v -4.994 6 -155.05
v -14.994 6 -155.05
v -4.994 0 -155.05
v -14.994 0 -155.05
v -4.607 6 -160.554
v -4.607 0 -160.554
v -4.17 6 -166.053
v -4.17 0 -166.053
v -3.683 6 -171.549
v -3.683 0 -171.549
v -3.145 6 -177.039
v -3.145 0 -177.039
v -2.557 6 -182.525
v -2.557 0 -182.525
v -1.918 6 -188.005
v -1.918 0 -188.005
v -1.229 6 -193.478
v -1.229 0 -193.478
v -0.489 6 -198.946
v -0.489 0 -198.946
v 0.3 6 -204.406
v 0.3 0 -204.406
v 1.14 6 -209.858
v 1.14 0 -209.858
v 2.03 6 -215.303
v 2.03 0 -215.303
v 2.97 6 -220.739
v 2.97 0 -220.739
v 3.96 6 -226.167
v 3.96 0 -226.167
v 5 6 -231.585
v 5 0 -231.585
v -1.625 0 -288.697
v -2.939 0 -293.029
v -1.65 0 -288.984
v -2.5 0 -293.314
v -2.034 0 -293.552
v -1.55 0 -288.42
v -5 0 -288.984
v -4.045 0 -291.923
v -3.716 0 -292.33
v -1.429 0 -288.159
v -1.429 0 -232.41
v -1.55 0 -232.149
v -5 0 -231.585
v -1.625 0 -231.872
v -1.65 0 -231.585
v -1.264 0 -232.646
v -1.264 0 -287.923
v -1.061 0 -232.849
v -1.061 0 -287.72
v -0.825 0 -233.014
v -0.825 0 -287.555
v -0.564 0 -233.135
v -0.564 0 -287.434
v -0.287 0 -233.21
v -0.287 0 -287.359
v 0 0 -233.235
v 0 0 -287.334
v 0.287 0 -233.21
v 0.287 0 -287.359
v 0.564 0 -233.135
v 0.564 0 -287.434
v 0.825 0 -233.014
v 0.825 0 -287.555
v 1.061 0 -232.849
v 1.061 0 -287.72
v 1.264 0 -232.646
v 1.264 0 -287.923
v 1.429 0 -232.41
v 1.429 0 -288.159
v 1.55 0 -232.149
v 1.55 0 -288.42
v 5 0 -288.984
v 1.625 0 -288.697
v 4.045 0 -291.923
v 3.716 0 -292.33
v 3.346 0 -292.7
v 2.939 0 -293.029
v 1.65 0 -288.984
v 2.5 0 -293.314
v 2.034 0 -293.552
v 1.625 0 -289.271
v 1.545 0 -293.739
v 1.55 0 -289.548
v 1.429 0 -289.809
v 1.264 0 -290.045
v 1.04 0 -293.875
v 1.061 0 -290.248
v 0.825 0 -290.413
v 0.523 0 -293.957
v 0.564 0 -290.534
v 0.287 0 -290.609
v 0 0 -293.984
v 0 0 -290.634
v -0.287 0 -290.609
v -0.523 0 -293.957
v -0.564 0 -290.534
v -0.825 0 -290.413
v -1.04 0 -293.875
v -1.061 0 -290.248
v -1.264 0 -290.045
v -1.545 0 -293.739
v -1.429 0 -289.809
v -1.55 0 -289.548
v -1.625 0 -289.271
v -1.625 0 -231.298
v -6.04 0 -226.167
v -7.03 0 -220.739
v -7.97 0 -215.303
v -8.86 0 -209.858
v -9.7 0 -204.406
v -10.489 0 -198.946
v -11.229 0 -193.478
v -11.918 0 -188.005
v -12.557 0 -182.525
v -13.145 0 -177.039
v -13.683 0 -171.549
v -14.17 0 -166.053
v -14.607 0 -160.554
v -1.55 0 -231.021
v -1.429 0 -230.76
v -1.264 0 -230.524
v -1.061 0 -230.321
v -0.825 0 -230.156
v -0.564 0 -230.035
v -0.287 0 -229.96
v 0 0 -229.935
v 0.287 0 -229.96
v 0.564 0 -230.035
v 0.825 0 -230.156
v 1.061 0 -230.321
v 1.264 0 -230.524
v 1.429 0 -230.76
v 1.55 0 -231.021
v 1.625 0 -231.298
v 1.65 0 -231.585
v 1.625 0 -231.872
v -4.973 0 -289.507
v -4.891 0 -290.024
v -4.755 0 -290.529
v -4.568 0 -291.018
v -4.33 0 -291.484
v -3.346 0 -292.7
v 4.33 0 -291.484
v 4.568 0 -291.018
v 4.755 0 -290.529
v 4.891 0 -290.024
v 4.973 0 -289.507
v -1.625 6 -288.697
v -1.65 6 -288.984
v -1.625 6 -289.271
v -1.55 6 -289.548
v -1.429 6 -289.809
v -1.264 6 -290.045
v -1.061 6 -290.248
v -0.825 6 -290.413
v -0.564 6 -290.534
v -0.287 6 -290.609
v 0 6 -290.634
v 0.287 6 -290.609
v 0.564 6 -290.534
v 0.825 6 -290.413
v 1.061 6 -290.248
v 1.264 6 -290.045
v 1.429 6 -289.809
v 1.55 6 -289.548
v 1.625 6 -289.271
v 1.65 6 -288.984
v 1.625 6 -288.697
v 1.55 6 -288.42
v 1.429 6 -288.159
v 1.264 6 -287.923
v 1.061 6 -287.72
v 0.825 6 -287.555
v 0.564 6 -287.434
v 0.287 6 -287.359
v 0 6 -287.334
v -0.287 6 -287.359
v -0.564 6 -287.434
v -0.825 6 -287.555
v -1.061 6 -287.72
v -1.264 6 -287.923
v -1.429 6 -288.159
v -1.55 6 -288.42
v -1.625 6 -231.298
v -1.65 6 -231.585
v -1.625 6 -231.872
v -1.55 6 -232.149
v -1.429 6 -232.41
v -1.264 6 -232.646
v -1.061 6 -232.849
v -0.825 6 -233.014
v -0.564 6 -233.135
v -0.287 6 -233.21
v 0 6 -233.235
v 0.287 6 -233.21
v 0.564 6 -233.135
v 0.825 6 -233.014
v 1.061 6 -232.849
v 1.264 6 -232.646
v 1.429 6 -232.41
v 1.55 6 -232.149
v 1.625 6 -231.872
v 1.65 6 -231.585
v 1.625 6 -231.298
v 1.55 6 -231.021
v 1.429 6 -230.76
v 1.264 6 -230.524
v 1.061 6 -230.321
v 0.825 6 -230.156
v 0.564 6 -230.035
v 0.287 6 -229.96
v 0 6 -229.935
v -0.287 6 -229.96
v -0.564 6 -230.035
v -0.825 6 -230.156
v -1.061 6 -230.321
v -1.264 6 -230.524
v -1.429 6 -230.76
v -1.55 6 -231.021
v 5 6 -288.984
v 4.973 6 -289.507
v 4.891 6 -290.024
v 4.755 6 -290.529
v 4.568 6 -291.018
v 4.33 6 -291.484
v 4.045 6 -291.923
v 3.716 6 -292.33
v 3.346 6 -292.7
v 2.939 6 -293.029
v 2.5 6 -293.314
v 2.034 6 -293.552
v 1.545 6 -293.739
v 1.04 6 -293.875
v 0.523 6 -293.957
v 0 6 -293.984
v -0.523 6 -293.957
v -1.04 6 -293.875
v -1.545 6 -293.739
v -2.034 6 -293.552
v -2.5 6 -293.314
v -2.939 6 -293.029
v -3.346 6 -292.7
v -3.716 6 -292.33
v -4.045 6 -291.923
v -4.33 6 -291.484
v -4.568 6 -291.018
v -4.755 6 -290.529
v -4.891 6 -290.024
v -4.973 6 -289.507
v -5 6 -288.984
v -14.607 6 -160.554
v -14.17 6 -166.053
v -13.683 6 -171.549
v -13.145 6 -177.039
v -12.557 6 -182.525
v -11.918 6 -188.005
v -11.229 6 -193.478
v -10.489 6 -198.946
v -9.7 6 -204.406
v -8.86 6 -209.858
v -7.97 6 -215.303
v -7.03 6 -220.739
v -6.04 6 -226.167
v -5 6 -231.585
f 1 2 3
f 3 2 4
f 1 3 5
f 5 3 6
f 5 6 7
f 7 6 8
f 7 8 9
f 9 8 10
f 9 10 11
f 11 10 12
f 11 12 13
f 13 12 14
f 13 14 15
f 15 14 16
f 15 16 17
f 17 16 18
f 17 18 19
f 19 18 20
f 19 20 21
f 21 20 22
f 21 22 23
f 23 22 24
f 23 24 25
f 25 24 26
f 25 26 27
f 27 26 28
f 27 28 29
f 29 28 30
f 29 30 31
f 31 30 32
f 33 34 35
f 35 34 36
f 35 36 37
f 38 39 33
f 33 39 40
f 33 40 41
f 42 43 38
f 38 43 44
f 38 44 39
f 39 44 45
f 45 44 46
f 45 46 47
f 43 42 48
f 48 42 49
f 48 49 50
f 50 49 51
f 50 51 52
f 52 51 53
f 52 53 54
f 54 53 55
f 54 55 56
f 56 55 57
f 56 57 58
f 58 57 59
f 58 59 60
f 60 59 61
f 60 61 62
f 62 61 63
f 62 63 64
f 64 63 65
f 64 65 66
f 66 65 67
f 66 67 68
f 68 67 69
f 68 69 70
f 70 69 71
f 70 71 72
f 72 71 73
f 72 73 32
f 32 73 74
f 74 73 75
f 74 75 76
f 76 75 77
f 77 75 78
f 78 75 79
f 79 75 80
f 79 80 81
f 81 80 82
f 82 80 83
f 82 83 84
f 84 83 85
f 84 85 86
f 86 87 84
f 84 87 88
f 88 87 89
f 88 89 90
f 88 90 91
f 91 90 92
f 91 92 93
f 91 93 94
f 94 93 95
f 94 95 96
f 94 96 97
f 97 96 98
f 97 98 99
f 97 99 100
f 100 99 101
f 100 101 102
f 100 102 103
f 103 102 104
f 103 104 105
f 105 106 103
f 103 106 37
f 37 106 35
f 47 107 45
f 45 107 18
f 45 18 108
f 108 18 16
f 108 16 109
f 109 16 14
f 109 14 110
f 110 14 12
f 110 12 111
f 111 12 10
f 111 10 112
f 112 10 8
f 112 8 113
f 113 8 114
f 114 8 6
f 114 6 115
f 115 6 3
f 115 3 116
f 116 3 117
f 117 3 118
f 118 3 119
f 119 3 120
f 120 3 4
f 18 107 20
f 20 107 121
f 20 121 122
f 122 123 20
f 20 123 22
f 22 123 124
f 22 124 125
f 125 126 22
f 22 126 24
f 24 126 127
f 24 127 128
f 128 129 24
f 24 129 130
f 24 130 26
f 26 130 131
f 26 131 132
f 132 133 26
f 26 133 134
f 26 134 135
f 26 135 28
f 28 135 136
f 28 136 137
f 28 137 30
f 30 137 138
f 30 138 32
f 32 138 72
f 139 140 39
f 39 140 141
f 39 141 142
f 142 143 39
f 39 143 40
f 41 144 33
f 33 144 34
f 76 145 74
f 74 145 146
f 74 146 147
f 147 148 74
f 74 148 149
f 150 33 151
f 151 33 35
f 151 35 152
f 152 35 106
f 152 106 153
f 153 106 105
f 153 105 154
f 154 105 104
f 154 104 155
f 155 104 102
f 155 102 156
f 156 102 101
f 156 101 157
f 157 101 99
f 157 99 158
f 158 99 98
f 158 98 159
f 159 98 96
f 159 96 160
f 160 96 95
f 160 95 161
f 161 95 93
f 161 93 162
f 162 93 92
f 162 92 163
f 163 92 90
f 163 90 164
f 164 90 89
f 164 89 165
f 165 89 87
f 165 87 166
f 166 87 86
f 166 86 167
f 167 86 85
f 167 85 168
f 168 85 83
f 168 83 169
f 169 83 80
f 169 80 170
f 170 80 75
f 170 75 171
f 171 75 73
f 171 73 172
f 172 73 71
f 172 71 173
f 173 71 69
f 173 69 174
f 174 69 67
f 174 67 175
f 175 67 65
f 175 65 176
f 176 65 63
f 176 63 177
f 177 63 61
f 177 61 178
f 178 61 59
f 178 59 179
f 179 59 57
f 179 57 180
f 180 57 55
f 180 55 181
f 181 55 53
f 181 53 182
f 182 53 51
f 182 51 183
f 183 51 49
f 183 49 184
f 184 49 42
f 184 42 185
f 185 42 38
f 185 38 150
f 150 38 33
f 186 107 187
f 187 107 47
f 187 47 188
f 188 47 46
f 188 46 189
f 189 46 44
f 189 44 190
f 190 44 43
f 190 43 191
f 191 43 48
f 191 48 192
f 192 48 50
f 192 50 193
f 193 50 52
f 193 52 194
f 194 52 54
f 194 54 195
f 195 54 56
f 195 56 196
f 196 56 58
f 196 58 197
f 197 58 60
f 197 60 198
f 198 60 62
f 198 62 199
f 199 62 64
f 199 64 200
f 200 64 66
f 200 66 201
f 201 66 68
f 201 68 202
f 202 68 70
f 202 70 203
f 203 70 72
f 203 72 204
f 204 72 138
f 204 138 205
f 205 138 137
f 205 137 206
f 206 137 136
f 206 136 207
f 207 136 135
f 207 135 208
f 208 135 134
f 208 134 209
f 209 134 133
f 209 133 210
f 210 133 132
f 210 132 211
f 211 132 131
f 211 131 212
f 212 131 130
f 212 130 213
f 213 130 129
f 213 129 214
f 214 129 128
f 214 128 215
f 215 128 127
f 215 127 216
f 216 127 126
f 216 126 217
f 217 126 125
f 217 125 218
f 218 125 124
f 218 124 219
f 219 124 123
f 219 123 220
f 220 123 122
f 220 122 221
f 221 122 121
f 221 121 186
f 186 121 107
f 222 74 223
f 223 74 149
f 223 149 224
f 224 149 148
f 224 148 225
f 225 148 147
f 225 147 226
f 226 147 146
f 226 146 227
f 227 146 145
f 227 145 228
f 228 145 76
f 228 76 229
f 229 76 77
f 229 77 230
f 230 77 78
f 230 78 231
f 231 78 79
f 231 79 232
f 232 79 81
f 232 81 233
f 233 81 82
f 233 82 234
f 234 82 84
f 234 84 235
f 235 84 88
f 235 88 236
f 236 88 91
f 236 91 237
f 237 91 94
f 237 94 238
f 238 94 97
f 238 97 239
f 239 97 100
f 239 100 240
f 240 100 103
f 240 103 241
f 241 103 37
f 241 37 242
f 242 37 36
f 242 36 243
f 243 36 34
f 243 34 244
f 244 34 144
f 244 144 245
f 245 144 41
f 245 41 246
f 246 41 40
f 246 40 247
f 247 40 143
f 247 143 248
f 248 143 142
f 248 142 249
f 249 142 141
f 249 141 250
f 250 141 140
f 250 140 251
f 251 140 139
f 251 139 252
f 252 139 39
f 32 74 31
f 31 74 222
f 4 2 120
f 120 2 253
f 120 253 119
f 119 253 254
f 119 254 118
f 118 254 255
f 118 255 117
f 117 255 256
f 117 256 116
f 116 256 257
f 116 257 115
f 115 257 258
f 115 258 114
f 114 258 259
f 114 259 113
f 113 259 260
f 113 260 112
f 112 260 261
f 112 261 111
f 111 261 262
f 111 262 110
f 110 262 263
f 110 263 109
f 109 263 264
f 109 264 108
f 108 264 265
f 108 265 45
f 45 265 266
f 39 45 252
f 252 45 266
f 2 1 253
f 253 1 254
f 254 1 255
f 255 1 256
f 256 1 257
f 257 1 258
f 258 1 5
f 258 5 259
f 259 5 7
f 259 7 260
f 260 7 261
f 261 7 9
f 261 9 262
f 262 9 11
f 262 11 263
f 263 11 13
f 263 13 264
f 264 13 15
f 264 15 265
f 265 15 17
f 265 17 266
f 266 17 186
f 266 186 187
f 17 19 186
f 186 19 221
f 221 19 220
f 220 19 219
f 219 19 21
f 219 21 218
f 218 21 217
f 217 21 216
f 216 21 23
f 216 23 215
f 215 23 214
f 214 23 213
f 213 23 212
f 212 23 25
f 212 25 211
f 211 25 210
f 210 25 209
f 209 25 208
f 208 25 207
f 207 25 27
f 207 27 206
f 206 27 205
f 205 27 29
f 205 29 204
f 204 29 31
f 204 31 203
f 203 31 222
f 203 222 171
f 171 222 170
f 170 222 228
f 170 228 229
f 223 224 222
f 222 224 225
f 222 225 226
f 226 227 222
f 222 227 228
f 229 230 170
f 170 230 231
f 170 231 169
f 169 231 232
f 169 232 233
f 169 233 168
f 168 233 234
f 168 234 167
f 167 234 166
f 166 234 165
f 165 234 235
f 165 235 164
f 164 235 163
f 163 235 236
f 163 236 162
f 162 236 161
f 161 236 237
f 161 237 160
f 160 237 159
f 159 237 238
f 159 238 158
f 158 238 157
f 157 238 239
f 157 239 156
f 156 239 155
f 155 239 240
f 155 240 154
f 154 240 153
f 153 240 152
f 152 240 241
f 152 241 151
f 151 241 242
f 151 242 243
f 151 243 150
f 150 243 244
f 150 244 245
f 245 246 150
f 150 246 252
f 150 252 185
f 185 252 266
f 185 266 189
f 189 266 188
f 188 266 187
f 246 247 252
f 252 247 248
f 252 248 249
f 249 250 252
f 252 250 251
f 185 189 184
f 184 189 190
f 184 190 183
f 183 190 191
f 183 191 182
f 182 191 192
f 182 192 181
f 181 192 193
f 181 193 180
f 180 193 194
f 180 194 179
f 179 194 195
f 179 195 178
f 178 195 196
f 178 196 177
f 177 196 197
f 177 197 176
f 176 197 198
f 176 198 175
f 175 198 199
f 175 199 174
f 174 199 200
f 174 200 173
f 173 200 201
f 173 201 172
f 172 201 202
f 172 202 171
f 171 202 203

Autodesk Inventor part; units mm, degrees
ref_plane "YZ Plane" through (0, 0, 0) normal (1, 0, 0) x (0, 1, 0)
ref_plane "XZ Plane" through (0, 0, 0) normal (0, 1, 0) x (-1, 0, 0)
ref_plane "XY Plane" through (0, 0, 0) normal (0, 0, 1) x (1, 0, 0)
sketch "Sketch1" plane through (0, 0, 0) normal (0, 1, 0) x (-1, 0, 0)
  line L0 (0, 0) -> (0, -288.984) construction
  line L1 (5, 0) -> (5, -288.984)
  line L2 (-5, -288.984) -> (-5, 0)
  arc A0 (5, 0) -> (-5, 0) centre (0, 0) ccw
  arc A1 (-5, -288.984) -> (5, -288.984) centre (0, -288.984) ccw
  circle A2 centre (0, 0) radius 1.65
  circle A3 centre (0, -288.984) radius 1.65
  circle A4 centre (0, -231.585) radius 1.65
  arc A5 (-5, -231.585) -> (-5, 0) centre (-593.7207, -115.7925) ccw
  arc A6 (5, -231.585) -> (5, 0) centre (-583.7207, -115.7925) ccw
  circle A7 centre (11.23, -122.909) radius 1.65
  point P0 (0, -144.492)
  dimension "d0" = 3.3
  dimension "d1" = 3.3
  dimension "d2" = 10
  dimension "d3" = 288.984
  dimension "d14" = 3.3
  dimension "d15" = 231.585
  dimension "d18" = 600
  dimension "d19" = 600
  dimension "d20" = 3.3
  dimension "d21" = 122.909
extrude "Extrusion1" add sketch "Sketch1" along normal blind 6 contours L1 A1 L2 A5 | L1 A5 A6 | L1 A5 A0
sketch "Sketch2" plane through (0, 6, 0) normal (0, 1, 0) x (1, 0, 0)
  line L0 (-45.4801, 155.0502) -> (34.3076, 155.0502)
  line L1 (34.3076, 155.0502) -> (34.3076, -18.7731)
  line L2 (34.3076, -18.7731) -> (-45.4801, -18.7731)
  line L3 (-45.4801, -18.7731) -> (-45.4801, 155.0502)
  line L4 (-115.905, 316.254) -> (136.0777, 316.254)
  line L5 (136.0777, 316.254) -> (136.0777, -116.4724)
  line L6 (136.0777, -116.4724) -> (-115.905, -116.4724)
  line L7 (-115.905, -116.4724) -> (-115.905, 316.254)
  point P0 (0, 0)
extrude "Extrusion2" cut sketch "Sketch2" against normal blind 10 contours L0 L1 L2 L3
properties part number "Part_7_p2"
